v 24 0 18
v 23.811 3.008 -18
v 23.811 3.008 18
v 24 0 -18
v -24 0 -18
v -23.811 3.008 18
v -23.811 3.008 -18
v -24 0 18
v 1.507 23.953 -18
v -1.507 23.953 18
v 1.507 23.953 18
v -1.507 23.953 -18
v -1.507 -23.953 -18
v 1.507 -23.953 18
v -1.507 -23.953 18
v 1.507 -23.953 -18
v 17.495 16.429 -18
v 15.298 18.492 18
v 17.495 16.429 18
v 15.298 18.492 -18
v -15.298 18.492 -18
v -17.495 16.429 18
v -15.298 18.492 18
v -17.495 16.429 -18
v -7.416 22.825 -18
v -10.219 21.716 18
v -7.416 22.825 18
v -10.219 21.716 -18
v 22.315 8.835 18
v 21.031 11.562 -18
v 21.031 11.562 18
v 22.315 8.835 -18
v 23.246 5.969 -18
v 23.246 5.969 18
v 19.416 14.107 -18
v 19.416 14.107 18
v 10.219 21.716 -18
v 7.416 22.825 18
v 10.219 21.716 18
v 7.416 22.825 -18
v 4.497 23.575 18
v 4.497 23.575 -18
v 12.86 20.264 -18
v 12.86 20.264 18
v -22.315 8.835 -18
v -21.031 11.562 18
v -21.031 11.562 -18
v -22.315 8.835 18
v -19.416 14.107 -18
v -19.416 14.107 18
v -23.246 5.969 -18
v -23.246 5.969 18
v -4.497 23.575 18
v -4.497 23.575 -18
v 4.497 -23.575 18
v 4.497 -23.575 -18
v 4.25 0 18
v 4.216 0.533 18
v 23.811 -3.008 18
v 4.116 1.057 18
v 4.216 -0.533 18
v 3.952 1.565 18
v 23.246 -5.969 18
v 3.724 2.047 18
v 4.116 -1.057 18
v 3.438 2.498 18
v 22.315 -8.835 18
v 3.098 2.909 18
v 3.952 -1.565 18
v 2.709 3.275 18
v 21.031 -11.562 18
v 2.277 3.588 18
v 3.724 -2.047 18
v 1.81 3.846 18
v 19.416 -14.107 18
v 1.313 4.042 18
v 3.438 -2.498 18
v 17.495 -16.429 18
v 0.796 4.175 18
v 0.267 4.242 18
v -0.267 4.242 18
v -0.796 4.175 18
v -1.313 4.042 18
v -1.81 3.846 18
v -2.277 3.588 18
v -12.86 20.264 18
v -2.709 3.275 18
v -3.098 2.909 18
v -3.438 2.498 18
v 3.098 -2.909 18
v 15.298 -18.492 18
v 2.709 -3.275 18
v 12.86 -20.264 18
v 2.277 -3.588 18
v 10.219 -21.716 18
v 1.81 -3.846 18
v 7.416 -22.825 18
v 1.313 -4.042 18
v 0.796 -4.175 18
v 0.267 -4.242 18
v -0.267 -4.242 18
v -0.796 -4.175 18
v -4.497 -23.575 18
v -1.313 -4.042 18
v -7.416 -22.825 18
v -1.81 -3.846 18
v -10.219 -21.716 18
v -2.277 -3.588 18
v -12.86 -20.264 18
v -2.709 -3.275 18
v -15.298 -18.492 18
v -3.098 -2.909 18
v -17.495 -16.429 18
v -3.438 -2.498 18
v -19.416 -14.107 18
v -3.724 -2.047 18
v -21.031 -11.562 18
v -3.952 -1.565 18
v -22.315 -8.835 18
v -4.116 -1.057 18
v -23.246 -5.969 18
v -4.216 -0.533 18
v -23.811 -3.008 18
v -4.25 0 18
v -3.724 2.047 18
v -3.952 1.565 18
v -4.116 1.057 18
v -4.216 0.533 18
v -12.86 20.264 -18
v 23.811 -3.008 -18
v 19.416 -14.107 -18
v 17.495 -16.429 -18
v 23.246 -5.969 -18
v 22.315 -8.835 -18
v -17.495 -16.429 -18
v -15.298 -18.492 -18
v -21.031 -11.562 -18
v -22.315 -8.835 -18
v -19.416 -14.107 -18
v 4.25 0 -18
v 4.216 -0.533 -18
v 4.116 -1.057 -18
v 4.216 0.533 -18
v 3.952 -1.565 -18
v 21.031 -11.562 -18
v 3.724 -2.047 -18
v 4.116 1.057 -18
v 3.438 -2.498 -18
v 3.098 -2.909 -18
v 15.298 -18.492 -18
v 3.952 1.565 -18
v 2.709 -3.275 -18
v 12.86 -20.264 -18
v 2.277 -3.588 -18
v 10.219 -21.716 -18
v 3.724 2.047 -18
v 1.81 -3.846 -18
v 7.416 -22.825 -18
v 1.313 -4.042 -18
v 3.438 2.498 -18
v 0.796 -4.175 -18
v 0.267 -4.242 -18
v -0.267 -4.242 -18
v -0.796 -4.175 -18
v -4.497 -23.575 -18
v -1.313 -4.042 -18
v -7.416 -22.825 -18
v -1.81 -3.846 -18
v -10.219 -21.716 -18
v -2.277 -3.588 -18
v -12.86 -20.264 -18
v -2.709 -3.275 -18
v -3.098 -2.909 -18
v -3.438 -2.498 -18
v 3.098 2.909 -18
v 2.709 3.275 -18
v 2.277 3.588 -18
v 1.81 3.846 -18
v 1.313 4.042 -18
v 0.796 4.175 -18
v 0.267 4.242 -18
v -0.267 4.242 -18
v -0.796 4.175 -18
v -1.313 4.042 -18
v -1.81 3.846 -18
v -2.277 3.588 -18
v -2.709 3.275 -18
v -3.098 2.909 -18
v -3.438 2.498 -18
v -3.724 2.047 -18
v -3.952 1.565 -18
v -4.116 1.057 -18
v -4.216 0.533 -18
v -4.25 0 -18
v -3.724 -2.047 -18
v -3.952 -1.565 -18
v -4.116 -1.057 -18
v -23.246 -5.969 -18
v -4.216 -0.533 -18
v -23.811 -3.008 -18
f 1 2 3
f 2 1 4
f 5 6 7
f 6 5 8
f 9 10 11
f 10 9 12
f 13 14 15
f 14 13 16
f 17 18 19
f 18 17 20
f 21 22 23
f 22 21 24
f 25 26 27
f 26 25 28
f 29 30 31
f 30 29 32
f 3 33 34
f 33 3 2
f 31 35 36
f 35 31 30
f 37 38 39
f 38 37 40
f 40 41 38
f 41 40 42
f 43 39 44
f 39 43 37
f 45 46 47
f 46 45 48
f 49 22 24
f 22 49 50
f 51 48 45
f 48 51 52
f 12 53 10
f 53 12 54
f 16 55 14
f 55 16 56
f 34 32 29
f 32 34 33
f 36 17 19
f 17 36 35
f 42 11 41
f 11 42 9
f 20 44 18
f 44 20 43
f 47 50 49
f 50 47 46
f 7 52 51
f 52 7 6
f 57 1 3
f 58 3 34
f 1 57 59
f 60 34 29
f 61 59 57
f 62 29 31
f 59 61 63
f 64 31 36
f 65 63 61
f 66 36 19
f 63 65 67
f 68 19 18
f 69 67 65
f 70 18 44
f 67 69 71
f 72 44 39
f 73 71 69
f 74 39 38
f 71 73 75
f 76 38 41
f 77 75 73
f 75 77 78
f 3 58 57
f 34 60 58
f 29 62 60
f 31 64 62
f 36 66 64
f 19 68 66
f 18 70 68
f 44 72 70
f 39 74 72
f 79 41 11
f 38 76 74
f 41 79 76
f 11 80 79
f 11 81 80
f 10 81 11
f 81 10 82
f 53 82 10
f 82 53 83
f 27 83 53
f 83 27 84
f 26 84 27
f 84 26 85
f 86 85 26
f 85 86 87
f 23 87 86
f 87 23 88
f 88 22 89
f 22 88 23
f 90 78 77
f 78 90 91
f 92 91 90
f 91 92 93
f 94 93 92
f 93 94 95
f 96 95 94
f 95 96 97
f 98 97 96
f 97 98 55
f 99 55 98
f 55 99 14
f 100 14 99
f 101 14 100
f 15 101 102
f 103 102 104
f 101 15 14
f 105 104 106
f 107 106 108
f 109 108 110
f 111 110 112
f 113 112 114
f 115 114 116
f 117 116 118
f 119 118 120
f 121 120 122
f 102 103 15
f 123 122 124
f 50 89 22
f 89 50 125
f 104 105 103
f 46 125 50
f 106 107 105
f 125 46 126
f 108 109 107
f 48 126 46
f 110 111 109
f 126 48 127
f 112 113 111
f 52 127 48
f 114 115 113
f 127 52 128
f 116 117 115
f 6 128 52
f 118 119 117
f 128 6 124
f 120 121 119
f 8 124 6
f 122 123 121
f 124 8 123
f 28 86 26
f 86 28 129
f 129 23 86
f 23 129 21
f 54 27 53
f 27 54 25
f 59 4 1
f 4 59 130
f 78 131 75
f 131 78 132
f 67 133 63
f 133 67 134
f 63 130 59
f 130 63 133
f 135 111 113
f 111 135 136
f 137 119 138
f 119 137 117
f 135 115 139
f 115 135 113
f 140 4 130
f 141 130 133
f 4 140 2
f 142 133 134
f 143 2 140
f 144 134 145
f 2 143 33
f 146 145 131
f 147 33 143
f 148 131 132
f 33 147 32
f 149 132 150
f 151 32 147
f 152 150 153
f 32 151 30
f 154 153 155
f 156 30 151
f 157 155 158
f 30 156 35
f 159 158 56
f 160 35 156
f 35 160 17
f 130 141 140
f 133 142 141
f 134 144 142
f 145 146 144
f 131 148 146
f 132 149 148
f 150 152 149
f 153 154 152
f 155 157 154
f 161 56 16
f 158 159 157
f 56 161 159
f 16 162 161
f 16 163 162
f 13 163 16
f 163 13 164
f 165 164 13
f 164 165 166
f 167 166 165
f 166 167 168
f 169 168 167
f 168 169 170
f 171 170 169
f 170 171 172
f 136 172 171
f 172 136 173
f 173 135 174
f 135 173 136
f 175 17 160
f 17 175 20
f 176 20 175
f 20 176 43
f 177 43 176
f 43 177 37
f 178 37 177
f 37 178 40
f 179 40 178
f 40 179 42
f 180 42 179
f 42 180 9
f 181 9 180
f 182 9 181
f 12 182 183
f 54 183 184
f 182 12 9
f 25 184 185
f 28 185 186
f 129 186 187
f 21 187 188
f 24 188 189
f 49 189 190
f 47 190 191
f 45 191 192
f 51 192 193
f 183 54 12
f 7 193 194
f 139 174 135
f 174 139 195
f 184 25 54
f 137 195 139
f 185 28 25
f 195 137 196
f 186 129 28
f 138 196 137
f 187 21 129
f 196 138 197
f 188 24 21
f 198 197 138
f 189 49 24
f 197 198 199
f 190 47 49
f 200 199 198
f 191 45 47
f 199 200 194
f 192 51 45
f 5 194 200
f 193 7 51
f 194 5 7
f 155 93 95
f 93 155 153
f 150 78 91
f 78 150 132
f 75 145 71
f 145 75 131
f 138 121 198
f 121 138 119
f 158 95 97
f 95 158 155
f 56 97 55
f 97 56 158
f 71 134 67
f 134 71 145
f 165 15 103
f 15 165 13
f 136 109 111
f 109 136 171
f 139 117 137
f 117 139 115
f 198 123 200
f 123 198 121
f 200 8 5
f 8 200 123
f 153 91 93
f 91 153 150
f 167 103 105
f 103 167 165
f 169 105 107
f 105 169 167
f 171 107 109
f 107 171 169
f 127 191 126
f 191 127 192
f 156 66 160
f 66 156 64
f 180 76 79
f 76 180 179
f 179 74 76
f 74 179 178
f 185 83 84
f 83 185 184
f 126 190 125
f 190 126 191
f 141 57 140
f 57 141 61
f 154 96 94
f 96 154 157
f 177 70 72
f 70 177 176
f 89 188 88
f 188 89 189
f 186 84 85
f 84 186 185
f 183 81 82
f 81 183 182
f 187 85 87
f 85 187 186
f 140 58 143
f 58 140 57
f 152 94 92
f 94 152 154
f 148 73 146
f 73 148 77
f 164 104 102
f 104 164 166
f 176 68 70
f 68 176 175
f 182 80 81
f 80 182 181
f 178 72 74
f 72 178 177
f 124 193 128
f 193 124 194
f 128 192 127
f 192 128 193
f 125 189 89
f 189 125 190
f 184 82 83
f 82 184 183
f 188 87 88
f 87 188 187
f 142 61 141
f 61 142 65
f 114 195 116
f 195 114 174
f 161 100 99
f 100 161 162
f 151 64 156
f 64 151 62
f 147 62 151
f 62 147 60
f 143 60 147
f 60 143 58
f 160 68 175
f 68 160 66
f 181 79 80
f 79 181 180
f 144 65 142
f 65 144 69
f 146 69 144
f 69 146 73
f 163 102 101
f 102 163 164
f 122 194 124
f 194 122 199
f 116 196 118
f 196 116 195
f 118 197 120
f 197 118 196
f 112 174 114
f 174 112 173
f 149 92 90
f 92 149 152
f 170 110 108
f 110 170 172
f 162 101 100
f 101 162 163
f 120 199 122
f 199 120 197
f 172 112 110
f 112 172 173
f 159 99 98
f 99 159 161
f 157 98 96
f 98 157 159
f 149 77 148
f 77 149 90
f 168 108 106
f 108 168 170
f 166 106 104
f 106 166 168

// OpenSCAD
$fn = 50;


difference() {
	union() {
		translate(v = [0, 0, -18.0000000000]) {
			cylinder(h = 36, r = 24.0000000000);
		}
	}
	union() {
		translate(v = [0, 0, -100.0000000000]) {
			cylinder(h = 200, r = 4.2500000000);
		}
	}
}
